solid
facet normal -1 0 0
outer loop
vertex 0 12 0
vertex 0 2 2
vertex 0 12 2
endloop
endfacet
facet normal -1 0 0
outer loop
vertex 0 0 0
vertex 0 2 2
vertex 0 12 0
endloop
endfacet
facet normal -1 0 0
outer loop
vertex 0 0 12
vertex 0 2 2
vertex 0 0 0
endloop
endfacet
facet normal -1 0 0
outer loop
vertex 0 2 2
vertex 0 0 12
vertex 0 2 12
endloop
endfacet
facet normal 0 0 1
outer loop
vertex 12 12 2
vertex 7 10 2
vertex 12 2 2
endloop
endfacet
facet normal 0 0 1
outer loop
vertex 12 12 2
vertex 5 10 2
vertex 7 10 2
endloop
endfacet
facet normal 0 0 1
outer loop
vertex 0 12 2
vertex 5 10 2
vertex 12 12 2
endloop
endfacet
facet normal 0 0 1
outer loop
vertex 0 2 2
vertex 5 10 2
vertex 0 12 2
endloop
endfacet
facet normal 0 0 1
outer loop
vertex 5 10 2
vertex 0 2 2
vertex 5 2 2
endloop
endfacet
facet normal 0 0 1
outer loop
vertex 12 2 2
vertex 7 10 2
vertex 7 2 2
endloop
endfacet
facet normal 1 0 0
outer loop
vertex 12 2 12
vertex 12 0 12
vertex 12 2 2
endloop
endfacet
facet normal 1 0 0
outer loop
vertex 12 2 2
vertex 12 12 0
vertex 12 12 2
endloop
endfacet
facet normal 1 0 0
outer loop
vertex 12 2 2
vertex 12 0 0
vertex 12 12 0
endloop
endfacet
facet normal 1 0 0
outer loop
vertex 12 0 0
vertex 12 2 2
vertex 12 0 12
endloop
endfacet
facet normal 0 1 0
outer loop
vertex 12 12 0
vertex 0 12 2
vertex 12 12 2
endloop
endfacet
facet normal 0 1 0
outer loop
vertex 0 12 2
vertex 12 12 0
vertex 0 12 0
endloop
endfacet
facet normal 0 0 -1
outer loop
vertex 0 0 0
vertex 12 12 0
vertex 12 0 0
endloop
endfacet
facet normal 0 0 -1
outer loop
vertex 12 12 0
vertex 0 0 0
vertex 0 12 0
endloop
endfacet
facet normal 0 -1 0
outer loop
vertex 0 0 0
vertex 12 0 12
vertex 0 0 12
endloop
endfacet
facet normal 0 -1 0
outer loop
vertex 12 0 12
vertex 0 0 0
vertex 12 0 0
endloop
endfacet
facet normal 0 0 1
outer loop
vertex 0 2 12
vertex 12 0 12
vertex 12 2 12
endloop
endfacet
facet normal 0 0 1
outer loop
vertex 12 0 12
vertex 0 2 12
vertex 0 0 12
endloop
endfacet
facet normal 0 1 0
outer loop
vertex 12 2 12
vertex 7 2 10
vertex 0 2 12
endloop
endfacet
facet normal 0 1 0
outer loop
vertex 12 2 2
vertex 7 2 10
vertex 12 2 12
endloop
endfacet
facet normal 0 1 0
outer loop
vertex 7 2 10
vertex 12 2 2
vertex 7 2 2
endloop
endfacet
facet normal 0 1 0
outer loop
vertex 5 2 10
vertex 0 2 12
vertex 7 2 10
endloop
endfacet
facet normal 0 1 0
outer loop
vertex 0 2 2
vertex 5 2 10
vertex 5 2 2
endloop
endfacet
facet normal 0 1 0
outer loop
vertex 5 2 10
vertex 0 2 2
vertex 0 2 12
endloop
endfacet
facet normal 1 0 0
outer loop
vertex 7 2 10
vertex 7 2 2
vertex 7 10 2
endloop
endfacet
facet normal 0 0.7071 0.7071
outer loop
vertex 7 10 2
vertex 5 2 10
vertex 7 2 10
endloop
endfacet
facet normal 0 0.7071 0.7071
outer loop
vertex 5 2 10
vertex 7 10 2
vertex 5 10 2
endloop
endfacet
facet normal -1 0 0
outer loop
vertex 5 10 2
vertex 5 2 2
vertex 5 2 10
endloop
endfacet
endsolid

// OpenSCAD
$fa=5; $fs=0.1;

//тупо маленькие уголки, которые к этой лампе будут приклеены

cube([12,12,2]);
cube([12,2,12]);
translate([7,0,0]) rotate([0,-90,0]) linear_extrude(height=2) polygon([[0,0],[12,0],[0,12]]);
